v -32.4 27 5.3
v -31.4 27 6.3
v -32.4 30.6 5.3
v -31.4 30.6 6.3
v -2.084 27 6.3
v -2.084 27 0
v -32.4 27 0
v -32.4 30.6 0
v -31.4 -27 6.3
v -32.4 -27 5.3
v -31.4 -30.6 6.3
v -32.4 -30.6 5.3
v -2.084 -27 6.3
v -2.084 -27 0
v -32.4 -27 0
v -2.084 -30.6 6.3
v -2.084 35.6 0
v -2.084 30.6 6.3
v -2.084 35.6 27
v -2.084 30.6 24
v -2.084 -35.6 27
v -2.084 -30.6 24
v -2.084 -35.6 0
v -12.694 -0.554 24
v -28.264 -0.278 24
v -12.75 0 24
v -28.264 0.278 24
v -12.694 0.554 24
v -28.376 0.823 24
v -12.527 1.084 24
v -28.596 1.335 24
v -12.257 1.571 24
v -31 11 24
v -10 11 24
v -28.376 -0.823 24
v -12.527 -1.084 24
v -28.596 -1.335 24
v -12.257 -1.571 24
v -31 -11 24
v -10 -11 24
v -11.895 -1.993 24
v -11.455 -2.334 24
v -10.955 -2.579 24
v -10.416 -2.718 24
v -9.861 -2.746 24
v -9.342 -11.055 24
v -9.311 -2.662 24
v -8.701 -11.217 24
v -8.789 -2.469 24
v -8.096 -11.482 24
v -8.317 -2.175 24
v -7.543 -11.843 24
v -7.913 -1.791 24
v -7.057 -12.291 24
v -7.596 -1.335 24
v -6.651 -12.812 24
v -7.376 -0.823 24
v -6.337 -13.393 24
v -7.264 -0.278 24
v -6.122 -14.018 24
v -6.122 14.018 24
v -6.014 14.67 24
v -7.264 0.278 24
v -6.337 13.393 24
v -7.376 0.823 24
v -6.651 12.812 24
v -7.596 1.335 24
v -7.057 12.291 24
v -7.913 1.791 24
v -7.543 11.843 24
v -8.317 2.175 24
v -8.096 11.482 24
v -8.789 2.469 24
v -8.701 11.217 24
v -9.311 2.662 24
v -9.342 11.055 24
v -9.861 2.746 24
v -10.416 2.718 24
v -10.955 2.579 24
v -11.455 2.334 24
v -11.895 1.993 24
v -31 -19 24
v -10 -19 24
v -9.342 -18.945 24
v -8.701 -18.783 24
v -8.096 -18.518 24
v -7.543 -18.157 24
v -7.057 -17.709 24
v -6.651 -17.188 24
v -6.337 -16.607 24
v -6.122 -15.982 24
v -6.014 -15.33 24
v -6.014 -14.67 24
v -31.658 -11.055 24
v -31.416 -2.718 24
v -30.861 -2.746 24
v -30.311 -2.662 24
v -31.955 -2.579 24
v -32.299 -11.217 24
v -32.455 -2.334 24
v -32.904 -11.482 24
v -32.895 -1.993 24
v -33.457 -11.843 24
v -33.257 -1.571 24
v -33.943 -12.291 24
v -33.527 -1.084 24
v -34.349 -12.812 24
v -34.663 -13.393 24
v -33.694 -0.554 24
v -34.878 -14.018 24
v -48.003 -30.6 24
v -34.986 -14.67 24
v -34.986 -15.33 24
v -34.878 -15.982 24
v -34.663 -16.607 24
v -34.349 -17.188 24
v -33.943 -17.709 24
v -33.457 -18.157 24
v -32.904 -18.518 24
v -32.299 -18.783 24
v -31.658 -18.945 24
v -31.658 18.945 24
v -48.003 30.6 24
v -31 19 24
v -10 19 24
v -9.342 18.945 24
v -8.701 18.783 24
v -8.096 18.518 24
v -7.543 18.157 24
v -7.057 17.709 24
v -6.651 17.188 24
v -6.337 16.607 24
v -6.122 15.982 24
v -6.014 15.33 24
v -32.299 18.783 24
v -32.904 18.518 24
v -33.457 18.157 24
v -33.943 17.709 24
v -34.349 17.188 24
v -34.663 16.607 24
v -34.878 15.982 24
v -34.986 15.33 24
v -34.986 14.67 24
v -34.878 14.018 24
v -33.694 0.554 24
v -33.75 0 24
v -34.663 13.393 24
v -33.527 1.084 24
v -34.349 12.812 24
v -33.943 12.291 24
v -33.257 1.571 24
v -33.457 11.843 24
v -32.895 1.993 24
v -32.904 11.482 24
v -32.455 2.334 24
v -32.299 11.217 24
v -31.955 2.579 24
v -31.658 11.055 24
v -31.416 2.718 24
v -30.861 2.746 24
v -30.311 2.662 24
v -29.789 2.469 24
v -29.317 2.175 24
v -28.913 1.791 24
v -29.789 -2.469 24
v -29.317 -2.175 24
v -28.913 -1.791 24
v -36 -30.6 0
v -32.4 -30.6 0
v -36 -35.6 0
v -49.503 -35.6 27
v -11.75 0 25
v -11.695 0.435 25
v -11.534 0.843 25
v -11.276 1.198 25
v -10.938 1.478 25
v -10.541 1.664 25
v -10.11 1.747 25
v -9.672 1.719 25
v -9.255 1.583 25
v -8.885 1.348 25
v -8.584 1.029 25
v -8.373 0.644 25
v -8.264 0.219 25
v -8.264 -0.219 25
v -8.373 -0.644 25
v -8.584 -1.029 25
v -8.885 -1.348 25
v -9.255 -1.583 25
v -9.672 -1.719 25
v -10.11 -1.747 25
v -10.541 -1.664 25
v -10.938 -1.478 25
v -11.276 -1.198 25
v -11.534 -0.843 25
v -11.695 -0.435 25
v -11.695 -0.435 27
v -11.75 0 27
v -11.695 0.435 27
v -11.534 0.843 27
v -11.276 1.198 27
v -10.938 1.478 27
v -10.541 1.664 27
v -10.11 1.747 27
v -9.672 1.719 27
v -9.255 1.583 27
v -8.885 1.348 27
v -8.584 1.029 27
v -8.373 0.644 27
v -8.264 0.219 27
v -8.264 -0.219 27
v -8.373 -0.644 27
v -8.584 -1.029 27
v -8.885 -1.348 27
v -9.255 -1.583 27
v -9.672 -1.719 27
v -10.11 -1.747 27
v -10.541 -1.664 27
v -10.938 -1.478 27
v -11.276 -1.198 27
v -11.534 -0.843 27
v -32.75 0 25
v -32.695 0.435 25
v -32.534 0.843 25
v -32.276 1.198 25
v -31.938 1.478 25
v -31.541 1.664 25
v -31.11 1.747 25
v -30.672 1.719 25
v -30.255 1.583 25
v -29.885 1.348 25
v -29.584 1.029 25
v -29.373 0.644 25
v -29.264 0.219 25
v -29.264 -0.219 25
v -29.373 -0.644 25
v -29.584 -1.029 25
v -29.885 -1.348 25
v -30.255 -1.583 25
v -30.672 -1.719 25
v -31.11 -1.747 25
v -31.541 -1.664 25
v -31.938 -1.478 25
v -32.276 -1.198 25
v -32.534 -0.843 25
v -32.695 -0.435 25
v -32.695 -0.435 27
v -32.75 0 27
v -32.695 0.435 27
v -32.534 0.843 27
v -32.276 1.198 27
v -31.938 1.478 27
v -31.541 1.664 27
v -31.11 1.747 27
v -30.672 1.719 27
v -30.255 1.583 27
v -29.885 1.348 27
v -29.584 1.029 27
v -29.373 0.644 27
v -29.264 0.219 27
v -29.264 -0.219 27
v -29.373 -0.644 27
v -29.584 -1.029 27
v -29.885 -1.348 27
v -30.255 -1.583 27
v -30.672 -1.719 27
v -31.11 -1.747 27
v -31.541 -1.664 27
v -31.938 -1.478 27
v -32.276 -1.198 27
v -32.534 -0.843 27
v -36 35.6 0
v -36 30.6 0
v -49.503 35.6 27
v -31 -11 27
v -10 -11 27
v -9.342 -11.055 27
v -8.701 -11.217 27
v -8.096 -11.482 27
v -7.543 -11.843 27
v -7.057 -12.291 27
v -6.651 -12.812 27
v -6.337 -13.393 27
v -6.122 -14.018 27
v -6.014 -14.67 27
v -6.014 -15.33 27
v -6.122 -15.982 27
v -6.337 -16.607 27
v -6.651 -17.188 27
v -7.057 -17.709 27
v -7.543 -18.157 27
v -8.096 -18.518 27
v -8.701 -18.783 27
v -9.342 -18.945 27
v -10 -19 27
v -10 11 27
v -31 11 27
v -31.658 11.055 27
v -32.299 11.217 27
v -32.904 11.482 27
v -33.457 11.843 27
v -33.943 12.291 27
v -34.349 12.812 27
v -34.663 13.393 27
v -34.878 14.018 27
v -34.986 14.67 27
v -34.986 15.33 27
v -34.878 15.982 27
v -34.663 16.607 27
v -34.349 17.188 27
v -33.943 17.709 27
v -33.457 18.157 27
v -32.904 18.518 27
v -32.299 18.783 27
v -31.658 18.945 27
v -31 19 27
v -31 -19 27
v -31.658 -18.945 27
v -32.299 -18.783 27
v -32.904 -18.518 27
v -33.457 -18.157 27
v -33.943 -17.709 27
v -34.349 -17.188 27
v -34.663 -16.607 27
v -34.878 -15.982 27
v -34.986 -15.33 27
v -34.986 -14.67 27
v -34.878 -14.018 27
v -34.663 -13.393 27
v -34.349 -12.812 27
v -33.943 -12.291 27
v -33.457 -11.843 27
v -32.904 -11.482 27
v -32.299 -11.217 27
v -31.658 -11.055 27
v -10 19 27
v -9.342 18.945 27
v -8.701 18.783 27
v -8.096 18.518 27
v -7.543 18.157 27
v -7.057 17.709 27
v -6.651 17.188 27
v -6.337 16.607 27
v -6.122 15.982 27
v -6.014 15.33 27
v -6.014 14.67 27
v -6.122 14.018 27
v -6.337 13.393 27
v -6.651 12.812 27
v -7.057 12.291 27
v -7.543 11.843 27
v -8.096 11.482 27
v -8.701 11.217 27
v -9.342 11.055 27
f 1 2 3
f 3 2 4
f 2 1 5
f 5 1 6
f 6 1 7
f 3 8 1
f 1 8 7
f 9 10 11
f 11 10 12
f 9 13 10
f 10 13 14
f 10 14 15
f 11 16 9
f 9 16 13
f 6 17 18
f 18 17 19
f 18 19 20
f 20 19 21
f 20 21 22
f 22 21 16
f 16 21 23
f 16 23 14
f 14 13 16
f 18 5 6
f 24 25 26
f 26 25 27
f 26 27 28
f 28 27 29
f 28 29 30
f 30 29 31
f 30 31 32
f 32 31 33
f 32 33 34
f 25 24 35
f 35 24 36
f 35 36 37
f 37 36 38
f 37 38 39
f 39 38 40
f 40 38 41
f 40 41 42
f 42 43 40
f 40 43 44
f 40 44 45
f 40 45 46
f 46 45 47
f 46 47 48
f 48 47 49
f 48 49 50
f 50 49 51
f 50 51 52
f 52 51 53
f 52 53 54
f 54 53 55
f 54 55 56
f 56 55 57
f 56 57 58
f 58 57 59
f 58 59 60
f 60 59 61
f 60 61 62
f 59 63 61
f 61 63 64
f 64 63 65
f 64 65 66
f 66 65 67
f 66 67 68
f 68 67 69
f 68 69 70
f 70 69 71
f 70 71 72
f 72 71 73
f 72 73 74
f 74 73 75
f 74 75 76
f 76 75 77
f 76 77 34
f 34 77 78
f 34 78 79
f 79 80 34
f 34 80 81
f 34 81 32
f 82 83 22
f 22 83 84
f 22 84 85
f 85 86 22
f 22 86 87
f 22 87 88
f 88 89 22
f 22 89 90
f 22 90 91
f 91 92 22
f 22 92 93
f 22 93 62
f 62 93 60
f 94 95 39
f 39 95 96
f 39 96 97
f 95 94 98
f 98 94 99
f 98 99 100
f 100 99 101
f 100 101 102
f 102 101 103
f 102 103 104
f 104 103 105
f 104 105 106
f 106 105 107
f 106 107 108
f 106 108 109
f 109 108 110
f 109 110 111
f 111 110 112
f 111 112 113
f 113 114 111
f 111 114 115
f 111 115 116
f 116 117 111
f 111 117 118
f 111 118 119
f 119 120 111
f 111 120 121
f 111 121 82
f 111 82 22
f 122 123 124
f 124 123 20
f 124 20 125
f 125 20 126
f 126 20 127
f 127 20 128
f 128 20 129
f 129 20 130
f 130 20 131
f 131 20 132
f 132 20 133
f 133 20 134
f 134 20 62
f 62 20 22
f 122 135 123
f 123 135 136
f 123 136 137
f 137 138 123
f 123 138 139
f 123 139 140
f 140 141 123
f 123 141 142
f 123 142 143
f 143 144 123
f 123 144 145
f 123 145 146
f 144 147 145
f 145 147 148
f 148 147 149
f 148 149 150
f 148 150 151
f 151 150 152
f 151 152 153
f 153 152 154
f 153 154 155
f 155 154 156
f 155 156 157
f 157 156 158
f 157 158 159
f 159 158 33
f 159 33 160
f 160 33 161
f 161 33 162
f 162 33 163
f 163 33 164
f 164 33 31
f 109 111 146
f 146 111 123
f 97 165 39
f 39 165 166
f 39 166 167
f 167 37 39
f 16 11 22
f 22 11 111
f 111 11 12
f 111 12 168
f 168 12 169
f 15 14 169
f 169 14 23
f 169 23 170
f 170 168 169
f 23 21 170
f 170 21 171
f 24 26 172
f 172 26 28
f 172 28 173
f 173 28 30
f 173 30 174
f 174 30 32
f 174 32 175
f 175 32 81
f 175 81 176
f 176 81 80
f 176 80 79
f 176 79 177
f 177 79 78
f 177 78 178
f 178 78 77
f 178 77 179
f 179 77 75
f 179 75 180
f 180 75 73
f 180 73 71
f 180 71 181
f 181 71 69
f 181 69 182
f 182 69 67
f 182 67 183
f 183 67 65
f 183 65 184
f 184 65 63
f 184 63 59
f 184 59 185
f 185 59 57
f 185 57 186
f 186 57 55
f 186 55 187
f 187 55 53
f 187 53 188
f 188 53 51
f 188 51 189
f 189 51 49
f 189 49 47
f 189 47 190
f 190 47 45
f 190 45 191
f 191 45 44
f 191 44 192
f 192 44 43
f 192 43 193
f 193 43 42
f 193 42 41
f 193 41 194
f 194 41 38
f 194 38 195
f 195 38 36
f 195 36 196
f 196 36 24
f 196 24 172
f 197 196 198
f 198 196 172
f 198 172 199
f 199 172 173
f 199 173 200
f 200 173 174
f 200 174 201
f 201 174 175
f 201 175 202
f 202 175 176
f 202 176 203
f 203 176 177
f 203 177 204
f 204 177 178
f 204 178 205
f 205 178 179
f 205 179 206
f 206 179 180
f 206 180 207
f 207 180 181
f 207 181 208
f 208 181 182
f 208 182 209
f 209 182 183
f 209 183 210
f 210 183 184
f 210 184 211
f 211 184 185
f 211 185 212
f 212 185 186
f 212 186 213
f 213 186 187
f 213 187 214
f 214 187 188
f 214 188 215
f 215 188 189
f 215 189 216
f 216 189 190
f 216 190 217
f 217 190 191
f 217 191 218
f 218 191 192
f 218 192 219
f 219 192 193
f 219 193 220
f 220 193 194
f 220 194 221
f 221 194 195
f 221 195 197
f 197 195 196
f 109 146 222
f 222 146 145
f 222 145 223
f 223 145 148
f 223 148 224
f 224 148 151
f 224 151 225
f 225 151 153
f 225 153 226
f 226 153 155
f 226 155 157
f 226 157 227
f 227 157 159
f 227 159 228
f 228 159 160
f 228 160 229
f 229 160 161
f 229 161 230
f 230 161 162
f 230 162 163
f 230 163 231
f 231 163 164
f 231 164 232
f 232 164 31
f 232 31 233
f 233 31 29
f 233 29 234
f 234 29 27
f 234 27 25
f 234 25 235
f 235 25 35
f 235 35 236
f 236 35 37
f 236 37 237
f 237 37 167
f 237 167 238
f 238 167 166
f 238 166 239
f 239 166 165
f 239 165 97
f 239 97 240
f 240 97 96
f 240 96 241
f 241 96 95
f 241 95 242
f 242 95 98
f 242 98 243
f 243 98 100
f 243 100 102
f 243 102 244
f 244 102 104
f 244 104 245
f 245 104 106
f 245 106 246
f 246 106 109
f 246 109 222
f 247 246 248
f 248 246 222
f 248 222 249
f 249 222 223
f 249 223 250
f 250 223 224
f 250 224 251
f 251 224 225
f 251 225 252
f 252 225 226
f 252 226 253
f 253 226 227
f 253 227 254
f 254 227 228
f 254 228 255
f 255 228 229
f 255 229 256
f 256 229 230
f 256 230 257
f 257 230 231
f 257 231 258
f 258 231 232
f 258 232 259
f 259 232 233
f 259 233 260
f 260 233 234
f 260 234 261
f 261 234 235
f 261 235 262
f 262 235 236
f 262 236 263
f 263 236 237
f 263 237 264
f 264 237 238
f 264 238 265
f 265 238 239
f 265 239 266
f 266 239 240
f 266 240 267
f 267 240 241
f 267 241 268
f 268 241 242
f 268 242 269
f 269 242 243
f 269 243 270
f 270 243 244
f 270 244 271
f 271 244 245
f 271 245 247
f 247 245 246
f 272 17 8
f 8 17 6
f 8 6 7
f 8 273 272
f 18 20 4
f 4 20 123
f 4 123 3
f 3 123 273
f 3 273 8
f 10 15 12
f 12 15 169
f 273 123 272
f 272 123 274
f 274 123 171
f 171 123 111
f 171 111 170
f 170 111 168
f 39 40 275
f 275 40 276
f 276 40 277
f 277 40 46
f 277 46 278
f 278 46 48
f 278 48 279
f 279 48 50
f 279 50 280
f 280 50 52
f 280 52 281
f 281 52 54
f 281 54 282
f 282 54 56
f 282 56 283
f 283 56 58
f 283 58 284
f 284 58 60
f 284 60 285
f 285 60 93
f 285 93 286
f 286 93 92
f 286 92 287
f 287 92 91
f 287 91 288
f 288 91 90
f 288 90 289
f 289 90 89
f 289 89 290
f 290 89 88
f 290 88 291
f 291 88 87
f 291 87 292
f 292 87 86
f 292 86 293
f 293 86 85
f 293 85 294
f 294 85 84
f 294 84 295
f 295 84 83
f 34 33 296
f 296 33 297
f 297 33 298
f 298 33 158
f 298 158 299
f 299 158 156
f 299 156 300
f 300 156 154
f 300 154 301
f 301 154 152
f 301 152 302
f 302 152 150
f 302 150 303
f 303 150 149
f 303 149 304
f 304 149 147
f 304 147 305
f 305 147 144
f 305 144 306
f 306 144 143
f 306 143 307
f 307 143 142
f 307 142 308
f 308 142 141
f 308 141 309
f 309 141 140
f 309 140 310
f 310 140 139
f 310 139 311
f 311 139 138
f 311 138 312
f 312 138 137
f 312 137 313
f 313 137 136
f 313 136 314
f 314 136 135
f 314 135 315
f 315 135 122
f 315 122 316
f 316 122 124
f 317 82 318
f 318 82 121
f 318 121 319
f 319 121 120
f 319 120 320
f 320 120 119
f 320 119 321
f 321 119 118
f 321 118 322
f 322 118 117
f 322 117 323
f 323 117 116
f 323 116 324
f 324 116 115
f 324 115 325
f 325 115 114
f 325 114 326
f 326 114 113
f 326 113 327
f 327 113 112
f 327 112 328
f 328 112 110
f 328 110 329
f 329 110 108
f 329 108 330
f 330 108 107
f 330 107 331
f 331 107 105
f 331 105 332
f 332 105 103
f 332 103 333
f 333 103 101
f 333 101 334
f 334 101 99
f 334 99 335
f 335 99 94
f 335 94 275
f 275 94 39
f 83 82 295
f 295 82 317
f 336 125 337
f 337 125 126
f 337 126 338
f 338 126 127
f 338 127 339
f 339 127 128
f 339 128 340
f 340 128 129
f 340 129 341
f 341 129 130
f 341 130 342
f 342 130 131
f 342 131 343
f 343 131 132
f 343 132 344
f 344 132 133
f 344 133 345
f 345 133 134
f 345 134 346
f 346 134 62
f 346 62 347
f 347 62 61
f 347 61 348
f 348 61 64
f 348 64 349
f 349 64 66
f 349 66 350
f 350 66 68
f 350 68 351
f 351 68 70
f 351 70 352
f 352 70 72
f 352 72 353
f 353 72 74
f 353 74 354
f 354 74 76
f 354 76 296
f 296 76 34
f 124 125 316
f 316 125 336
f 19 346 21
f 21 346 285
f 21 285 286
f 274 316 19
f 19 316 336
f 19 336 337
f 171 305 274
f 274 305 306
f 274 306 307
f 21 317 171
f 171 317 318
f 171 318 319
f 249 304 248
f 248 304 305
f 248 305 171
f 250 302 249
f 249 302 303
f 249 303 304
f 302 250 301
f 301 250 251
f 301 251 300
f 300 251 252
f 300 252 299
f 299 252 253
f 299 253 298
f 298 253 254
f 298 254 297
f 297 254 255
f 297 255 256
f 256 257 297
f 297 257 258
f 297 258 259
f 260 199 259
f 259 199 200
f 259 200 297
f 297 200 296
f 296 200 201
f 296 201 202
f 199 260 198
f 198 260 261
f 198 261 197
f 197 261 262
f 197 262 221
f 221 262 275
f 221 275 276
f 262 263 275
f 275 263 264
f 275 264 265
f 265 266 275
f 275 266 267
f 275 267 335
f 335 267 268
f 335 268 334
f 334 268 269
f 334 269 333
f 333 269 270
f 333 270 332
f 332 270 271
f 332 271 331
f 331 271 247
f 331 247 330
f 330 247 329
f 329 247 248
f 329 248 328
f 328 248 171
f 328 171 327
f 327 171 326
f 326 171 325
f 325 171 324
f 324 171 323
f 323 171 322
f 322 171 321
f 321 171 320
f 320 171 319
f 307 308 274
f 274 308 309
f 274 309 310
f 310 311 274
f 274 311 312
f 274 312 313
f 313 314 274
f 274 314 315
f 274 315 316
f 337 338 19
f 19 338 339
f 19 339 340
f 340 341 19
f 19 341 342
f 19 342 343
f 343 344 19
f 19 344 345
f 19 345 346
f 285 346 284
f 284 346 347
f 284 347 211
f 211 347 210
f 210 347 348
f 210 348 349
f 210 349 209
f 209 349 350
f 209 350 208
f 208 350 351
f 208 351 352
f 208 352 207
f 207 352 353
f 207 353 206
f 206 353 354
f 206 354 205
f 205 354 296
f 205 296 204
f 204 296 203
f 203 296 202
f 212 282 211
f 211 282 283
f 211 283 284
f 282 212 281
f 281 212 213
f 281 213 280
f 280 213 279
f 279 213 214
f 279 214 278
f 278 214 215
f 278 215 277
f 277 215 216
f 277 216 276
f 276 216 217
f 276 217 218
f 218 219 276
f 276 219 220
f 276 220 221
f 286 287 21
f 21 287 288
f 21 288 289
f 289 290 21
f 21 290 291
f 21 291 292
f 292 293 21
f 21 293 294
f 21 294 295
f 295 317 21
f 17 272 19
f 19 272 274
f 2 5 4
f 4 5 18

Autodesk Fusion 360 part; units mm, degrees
sketch "Sketch1" plane through (0, 0, 0) normal (0, 0, 1) x (1, 0, 0)
  line L0 (36, 27) -> (-36, 27)
  line L1 (-36, 27) -> (-36, -27)
  line L2 (-36, -27) -> (36, -27)
  line L3 (36, -27) -> (36, 27)
  line L4 (36, 30.6) -> (-36, 30.6)
  line L5 (-36, 35.6) -> (-36, -30.6)
  line L6 (-36, -30.6) -> (36, -30.6)
  line L7 (36, -30.6) -> (36, 30.6)
  line L8 (33, 35.6) -> (-36, 35.6)
  line L9 (41, -27.6) -> (41, 27.6)
  line L10 (33, -35.6) -> (-36, -35.6)
  line L11 (-36, -35.6) -> (-36, 30.6)
  arc A0 (41, 27.6) -> (33, 35.6) centre (33, 27.6) ccw
  arc A1 (33, -35.6) -> (41, -27.6) centre (33, -27.6) ccw
  circle A2 centre (-31, 0) radius 1.75
  line L12 (-31, 11) -> (-10, 11)
  arc A3 (-10, 11) -> (-10, 19) centre (-10, 15) ccw
  line L13 (-10, 19) -> (-31, 19)
  arc A4 (-31, 19) -> (-31, 11) centre (-31, 15) ccw
  line L14 (-31, 15) -> (-10, 15) construction
  line L15 (1.75, 0) -> (22.5, 0)
  line L16 (-31, -11) -> (-10, -11)
  line L17 (-10, -19) -> (-31, -19)
  arc A5 (-10, -19) -> (-10, -11) centre (-10, -15) ccw
  arc A6 (-31, -11) -> (-31, -19) centre (-31, -15) ccw
  circle A7 centre (-10, 0) radius 1.75
  dimension "d1" = 72
  dimension "d2" = 54
  dimension "d3" = 61.2
  dimension "d6" = 8
  dimension "d32" = 3.5
  dimension "d34" = 8
  dimension "d40" = 3.5
extrude "Extrude1" add sketch "Sketch1" along normal blind 6.3 contours L3 L4 L5 L6 L7 L8 L9 L10 L11 A0 A1 | L0 L4 L5 L7 L11 | L2 L5 L6 L7 L11
extrude "Extrude2" add sketch "Sketch1" along normal blind 24 contours L3 L4 L5 L6 L7 L8 L9 L10 L11 A0 A1
extrude "Extrude3" add sketch "Sketch1" along normal blind 27 and the other way blind -24
sketch "Sketch2" plane through (0, -35.6, 0) normal (0, -1, 0) x (1, 0, 0)
  line L0 (-36, 0) -> (33, 0)
  line L1 (33, 0) -> (33, 27)
  line L2 (-36, 27) -> (-36, 0)
  line L3 (-36, 0) -> (-49.5029, 27)
  line L4 (-36, 0) -> (-6, 0) construction
  line L5 (-36, 27) -> (-49.5029, 27)
  line L6 (33, 27) -> (-36, 27)
  line L7 (-36, 27) -> (-36, 24)
  line L8 (-36, 24) -> (-36.4845, 24)
  line L9 (-36.4845, 24) -> (-48.0026, 24)
  line L10 (-36, 0) -> (-36, 6.4)
  line L11 (-36, 6.4) -> (-36, 6)
  line L12 (-36, 6.4) -> (-39.2007, 6.4)
  line L13 (-36, 0) -> (-32.4, 0)
  line L14 (-49.5029, 27) -> (-47.5029, 27)
  line L15 (-36, 6.4) -> (-32.4, 6.4)
  line L16 (-32.4, 6.4) -> (-32.4, 0)
  dimension "d11" = 116.57
  dimension "d25" = 6.4
  dimension "d36" = 3.6
  dimension "d37" = 2
extrude "Extrude4" add sketch "Sketch2" against normal blind 5 contours L2 L3 L10 L11 L12 | L2 L3 L8 L9 L12
extrude "Extrude5" add sketch "Sketch2" along normal blind -71.2 and the other way blind 66.2 contours L2 L3 L10 L11 L12 | L2 L3 L8 L9 L12
extrude "Extrude6" add sketch "Sketch2" against normal blind 71.2 contours L2 L3 L5 L7 L8 L9 L14
extrude "Extrude7" cut sketch "Sketch2" along normal blind -8.6 and the other way blind 5 contours L0 L2 L10 L11 L13 L15 L16
extrude "Extrude8" cut sketch "Sketch2" along normal blind -66.2 and the other way blind 62.6 contours L0 L2 L10 L11 L13 L15 L16
chamfer "Chamfer2" distance 1 angle 45 2 edges at (-32.6316, 0.6328, 24) (-11.6316, 0.6328, 24)
sketch "Sketch3" plane through (0, 0, 27) normal (0, 0, 1) x (-1, 0, 0)
  arc A0 (10, 19) -> (10, 11) centre (10, 15) ccw
  line L0 (10, 19) -> (31, 19)
  arc A1 (31, 11) -> (31, 19) centre (31, 15) ccw
  line L1 (31, 11) -> (10, 11)
  circle A2 centre (31, 0) radius 1.75
  circle A3 centre (10, 0) radius 1.75
  arc A4 (31, -19) -> (31, -11) centre (31, -15) ccw
  line L2 (31, -19) -> (10, -19)
  arc A5 (10, -11) -> (10, -19) centre (10, -15) ccw
  line L3 (10, -11) -> (31, -11)
  line L4 (49.5029, 35.6) -> (-33, 35.6)
  arc A6 (-33, 35.6) -> (-41, 27.6) centre (-33, 27.6) ccw
  line L5 (-41, 27.6) -> (-41, -27.6)
  arc A7 (-41, -27.6) -> (-33, -35.6) centre (-33, -27.6) ccw
  line L6 (-33, -35.6) -> (49.5029, -35.6)
  line L7 (49.5029, -35.6) -> (49.5029, 35.6)
  line L8 (2.0837, -40) -> (-45, -40)
  line L9 (-45, -40) -> (-45, 40)
  line L10 (-45, 40) -> (2.0837, 40)
  line L11 (2.0837, 40) -> (2.0837, -40)
extrude "Extrude9" cut sketch "Sketch3" against normal blind 55 contours L4 A6 L5 A7 L6 L11 | L4 A6 L5 A7 L6 L8 L9 L10 L11
chamfer "Chamfer3" distance 1 angle 45 2 edges at (-32.4, -28.8, 6.3) (-32.4, 28.8, 6.3)
